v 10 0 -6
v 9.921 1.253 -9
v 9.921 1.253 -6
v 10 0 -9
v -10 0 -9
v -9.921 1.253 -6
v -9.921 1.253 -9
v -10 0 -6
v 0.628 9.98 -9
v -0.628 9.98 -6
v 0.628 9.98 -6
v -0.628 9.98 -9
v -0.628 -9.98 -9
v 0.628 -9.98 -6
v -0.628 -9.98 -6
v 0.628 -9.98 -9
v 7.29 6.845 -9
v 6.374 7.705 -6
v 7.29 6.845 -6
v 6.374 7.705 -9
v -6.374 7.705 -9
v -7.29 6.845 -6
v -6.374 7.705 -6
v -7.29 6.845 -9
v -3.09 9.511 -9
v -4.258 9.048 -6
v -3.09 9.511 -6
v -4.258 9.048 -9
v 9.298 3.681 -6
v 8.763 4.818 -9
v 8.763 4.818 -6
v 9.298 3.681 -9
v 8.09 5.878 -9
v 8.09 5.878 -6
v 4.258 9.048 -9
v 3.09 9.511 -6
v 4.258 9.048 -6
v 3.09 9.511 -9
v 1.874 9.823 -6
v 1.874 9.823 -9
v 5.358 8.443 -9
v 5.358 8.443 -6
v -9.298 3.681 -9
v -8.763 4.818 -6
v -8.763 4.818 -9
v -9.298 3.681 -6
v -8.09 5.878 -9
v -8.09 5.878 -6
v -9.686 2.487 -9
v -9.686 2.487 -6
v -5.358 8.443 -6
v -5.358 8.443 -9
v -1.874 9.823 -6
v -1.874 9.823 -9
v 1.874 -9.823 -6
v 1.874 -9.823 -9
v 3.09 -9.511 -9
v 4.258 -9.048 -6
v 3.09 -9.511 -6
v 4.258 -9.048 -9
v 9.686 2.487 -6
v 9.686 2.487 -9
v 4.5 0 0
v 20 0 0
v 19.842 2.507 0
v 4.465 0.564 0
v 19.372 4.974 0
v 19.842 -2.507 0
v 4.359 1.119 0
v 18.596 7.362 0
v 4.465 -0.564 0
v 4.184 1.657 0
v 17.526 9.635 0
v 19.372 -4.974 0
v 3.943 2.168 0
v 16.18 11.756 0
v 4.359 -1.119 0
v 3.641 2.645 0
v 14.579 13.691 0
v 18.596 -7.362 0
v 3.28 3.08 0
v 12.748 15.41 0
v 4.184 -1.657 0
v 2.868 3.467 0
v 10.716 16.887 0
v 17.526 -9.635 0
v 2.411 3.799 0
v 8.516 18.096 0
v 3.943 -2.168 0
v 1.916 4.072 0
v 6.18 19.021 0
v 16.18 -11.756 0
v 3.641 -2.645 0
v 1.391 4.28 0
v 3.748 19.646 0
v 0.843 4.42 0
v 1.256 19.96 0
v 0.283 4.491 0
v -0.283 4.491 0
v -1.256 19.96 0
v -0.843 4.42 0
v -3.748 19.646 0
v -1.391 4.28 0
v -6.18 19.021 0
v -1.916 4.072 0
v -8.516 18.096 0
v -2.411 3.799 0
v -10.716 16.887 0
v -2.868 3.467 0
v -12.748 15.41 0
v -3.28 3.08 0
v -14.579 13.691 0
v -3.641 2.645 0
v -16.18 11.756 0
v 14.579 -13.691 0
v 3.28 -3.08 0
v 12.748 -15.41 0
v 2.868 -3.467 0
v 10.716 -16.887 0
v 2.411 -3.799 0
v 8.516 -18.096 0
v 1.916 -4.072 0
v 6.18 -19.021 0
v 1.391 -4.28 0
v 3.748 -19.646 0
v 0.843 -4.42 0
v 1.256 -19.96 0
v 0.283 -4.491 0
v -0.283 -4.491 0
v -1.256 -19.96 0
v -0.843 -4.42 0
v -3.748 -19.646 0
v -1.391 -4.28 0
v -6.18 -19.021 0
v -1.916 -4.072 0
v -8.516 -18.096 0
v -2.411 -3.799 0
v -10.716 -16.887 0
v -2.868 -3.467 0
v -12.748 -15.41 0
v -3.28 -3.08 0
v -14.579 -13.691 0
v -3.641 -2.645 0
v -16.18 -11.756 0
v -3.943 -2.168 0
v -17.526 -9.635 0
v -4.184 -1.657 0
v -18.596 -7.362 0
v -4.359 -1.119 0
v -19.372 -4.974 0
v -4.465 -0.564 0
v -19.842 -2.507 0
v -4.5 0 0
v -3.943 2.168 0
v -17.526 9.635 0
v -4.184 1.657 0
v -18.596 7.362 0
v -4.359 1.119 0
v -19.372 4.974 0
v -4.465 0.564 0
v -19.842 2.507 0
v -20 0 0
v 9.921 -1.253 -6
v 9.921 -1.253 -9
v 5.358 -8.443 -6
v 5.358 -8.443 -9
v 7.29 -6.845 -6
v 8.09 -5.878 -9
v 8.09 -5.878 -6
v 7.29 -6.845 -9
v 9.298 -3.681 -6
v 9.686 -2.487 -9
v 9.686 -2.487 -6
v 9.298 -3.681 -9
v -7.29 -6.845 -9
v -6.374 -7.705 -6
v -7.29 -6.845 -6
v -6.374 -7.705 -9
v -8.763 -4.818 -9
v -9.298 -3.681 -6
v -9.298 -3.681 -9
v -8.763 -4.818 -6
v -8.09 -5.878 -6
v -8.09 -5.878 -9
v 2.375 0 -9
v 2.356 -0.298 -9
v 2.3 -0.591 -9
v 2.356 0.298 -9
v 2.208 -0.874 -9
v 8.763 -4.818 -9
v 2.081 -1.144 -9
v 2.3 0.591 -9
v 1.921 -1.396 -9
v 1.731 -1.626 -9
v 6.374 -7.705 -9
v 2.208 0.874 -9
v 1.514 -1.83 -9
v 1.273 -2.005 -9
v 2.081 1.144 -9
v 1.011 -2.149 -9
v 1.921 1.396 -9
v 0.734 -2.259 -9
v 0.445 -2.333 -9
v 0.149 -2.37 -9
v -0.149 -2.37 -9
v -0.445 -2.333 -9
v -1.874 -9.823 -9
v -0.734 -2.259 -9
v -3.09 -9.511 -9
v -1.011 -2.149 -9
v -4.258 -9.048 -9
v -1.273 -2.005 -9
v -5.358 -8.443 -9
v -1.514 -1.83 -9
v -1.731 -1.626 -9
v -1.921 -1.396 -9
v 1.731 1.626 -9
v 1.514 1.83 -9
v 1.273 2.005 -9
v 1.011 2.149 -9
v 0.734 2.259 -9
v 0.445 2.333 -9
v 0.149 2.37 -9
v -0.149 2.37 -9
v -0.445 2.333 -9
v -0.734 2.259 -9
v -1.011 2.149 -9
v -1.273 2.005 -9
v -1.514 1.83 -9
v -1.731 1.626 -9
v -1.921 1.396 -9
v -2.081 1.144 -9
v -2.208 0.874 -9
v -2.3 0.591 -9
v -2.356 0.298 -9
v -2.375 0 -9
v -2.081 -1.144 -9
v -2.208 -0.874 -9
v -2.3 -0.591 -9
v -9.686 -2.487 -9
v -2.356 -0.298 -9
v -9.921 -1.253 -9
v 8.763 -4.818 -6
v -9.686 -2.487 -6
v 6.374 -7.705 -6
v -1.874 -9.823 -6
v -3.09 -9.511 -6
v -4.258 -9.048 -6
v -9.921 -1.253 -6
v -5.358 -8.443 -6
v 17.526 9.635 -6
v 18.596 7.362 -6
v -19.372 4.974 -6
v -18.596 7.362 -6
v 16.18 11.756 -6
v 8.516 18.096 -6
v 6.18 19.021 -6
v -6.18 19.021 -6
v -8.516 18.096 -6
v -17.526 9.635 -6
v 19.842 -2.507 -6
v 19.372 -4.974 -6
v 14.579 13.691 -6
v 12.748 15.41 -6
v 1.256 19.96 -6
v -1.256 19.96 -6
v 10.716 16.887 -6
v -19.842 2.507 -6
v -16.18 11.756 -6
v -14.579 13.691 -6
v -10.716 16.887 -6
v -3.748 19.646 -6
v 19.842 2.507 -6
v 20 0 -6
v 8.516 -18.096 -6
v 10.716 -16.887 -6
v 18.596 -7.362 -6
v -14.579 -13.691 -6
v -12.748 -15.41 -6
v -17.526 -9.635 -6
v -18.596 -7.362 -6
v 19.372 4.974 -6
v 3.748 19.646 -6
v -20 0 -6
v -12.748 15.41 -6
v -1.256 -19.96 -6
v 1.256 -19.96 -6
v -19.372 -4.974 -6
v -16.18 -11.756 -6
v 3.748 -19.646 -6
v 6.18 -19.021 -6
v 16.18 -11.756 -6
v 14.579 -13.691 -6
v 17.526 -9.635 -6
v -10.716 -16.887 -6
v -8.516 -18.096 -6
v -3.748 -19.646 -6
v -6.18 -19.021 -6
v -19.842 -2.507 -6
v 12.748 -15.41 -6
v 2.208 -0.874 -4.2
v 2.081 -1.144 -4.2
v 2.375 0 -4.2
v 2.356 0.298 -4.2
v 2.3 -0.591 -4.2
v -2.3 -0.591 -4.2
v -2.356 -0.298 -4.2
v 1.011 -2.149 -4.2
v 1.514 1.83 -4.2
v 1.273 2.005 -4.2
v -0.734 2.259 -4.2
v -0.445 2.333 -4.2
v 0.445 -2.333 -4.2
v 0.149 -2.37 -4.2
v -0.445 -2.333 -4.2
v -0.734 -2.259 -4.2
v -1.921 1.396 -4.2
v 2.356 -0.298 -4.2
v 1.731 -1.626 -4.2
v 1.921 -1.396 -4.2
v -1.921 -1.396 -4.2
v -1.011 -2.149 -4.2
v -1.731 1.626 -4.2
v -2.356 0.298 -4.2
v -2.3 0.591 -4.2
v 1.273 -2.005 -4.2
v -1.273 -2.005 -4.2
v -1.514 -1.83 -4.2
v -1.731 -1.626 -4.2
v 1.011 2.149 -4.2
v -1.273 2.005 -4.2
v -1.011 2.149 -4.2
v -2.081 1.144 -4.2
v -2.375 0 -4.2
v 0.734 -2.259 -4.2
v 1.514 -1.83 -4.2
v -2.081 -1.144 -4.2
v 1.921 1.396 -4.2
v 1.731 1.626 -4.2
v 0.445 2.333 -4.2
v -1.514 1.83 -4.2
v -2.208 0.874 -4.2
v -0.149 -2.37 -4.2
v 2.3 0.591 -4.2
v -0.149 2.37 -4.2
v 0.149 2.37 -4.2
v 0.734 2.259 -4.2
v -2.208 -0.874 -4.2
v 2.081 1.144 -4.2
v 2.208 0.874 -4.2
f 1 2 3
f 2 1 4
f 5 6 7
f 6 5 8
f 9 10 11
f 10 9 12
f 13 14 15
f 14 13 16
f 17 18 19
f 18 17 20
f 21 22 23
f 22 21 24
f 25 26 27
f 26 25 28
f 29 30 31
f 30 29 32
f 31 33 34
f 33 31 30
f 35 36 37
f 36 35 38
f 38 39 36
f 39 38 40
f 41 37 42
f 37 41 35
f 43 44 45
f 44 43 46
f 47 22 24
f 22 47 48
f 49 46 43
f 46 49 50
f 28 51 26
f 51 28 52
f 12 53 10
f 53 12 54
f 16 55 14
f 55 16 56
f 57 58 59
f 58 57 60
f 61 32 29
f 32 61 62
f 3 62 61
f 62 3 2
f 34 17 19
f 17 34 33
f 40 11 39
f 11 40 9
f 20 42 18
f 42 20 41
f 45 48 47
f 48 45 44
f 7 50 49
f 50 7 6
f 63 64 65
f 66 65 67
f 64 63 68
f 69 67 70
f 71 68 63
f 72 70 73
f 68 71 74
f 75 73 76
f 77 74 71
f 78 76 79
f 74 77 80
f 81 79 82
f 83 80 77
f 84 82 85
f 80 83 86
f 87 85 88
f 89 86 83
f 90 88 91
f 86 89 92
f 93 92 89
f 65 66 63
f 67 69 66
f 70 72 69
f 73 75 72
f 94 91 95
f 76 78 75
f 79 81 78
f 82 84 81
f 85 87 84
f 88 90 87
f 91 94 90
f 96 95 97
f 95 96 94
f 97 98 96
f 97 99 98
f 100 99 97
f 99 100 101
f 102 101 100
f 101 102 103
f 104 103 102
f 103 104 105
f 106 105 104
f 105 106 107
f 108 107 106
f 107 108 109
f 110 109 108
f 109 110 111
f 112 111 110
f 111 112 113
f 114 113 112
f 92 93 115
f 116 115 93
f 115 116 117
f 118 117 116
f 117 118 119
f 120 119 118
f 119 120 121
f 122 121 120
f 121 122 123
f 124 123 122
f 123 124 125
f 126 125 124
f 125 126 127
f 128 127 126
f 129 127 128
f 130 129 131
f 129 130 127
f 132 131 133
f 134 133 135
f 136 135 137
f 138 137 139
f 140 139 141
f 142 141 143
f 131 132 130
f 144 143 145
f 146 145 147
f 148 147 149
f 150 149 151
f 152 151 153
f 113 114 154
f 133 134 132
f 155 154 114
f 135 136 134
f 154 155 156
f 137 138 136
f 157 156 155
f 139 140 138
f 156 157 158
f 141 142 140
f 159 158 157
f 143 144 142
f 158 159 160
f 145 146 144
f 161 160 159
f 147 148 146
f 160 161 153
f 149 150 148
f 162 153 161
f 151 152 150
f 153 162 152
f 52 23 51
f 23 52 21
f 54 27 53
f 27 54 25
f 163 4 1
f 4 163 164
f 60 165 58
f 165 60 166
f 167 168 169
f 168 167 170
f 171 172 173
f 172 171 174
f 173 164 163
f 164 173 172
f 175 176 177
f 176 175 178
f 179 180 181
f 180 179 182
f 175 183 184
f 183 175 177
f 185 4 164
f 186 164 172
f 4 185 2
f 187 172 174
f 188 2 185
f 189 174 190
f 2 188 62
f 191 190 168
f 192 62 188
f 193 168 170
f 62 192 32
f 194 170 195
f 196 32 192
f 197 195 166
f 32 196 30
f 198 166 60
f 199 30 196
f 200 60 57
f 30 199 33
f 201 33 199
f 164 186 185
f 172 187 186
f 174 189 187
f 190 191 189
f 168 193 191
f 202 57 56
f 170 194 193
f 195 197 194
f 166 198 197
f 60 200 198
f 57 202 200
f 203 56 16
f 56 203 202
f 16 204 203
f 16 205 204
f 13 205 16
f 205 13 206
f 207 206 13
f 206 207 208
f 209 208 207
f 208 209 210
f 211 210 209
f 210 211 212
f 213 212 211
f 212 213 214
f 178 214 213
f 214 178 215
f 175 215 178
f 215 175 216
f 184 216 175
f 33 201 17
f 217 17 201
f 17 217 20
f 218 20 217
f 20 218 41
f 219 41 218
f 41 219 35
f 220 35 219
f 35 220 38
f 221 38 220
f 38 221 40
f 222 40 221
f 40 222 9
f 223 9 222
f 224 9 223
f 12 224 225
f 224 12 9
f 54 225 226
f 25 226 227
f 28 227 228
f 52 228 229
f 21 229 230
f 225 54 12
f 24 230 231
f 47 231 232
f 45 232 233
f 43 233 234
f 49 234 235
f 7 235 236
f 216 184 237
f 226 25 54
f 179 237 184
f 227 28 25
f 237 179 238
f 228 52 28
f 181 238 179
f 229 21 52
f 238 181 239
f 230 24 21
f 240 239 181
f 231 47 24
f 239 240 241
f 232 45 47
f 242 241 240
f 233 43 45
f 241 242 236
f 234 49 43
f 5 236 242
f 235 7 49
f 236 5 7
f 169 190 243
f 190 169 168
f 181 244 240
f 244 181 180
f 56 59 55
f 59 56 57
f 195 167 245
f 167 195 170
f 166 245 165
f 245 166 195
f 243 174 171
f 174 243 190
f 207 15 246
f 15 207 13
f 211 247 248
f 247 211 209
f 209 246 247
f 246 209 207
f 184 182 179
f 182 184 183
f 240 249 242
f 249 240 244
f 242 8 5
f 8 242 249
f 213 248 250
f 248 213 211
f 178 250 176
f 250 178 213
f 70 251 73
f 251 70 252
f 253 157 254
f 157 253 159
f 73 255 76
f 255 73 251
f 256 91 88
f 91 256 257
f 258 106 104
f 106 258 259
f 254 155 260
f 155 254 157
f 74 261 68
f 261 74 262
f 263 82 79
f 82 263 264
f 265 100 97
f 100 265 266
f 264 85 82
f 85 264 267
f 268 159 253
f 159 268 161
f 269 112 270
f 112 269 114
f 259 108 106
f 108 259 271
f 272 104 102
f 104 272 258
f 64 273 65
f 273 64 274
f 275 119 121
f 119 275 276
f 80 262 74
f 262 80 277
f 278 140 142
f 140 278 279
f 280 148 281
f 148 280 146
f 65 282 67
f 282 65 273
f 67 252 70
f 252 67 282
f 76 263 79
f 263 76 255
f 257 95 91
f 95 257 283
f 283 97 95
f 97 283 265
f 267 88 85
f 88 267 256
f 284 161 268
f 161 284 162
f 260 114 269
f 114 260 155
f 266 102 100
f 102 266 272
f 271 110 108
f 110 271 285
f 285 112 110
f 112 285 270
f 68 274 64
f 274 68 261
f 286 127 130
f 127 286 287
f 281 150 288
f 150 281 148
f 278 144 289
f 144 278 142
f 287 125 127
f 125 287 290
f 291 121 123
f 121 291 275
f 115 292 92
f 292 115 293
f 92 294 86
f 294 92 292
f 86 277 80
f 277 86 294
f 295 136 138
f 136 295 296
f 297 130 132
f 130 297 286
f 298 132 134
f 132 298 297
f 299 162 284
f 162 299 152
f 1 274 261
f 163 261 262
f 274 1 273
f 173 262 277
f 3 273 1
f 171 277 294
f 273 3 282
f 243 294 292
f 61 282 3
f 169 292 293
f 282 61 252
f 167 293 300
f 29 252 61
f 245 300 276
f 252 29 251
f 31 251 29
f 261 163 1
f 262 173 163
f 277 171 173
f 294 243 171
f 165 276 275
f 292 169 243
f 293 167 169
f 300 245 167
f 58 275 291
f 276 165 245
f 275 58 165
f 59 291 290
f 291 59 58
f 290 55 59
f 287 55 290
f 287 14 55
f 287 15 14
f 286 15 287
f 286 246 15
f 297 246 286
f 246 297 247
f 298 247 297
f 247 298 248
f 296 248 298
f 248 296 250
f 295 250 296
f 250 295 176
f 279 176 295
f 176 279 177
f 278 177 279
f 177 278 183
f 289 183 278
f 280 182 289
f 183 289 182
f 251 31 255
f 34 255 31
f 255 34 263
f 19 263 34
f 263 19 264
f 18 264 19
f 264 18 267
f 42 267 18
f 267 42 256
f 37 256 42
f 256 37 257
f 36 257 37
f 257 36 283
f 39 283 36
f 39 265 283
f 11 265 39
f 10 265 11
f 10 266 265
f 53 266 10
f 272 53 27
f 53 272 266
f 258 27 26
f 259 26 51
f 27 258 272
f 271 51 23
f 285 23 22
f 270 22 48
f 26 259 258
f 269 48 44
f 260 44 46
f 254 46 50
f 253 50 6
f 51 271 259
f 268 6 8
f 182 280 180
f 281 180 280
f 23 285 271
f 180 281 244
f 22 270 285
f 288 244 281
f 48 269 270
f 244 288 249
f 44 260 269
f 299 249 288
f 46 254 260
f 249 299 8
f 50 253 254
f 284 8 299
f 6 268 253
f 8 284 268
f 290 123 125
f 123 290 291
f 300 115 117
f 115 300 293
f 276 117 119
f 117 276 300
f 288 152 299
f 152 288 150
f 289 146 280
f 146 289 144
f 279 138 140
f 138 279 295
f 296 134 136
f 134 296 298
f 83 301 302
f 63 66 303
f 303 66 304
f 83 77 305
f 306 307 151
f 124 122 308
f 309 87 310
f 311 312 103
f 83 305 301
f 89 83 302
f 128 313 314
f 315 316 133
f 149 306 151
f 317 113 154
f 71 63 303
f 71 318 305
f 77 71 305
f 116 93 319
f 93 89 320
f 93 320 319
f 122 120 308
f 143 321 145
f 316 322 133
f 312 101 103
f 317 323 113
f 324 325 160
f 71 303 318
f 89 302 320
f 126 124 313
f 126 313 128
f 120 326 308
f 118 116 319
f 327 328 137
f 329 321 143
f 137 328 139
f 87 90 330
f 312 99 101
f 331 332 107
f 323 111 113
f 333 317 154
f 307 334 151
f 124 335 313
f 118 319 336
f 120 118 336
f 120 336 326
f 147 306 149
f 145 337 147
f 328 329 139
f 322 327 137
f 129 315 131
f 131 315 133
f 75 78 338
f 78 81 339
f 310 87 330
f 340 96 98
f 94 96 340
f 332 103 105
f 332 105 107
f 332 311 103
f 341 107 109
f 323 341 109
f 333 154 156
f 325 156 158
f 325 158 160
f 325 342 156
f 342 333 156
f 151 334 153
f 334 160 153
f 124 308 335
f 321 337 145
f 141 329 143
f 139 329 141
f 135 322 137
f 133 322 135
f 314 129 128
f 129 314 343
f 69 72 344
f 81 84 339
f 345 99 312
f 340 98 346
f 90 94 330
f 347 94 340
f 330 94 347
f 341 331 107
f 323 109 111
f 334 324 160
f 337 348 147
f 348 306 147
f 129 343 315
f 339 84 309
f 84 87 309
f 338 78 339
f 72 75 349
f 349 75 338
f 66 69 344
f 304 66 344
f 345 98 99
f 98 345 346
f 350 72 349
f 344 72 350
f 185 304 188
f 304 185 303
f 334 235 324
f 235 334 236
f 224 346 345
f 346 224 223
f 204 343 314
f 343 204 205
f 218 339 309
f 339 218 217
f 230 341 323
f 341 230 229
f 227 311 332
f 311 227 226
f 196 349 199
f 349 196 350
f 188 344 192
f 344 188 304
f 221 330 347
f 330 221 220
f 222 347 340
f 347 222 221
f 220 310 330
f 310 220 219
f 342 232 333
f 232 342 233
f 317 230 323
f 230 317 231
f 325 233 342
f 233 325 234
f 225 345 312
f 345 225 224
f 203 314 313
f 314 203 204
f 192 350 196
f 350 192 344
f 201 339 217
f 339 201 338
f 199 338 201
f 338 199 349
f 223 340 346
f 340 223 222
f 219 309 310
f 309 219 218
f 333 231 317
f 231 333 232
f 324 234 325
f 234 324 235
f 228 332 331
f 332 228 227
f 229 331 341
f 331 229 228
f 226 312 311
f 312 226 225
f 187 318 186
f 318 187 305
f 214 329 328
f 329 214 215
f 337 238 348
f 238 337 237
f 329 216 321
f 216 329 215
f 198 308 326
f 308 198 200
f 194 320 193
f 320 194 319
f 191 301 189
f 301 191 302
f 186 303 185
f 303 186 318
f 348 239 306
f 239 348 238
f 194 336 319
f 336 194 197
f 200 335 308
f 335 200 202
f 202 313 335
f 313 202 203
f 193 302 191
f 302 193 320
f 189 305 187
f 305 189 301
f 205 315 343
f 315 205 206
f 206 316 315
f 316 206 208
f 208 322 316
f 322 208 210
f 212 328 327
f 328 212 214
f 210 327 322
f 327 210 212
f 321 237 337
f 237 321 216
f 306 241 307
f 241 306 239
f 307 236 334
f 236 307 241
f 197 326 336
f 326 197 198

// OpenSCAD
$fn = 50;


difference() {
	union() {
		translate(v = [0, 0, -9.0000000000]) {
			cylinder(h = 9, r = 10.0000000000);
		}
		translate(v = [0, 0, -6.0000000000]) {
			cylinder(h = 6, r = 20.0000000000);
		}
	}
	union() {
		translate(v = [0, 0, 0]) {
			rotate(a = [0, 0, 0]) {
				difference() {
					union() {
						#translate(v = [0, 0, -9.0000000000]) {
							cylinder(h = 9, r = 2.2500000000);
						}
						#translate(v = [0, 0, -4.2000000000]) {
							cylinder(h = 4.2000000000, r1 = 2.3750000000, r2 = 4.5000000000);
						}
						#translate(v = [0, 0, -9.0000000000]) {
							cylinder(h = 9, r = 2.3750000000);
						}
						#translate(v = [0, 0, -9.0000000000]) {
							cylinder(h = 9, r = 2.2500000000);
						}
					}
					union();
				}
			}
		}
	}
}
